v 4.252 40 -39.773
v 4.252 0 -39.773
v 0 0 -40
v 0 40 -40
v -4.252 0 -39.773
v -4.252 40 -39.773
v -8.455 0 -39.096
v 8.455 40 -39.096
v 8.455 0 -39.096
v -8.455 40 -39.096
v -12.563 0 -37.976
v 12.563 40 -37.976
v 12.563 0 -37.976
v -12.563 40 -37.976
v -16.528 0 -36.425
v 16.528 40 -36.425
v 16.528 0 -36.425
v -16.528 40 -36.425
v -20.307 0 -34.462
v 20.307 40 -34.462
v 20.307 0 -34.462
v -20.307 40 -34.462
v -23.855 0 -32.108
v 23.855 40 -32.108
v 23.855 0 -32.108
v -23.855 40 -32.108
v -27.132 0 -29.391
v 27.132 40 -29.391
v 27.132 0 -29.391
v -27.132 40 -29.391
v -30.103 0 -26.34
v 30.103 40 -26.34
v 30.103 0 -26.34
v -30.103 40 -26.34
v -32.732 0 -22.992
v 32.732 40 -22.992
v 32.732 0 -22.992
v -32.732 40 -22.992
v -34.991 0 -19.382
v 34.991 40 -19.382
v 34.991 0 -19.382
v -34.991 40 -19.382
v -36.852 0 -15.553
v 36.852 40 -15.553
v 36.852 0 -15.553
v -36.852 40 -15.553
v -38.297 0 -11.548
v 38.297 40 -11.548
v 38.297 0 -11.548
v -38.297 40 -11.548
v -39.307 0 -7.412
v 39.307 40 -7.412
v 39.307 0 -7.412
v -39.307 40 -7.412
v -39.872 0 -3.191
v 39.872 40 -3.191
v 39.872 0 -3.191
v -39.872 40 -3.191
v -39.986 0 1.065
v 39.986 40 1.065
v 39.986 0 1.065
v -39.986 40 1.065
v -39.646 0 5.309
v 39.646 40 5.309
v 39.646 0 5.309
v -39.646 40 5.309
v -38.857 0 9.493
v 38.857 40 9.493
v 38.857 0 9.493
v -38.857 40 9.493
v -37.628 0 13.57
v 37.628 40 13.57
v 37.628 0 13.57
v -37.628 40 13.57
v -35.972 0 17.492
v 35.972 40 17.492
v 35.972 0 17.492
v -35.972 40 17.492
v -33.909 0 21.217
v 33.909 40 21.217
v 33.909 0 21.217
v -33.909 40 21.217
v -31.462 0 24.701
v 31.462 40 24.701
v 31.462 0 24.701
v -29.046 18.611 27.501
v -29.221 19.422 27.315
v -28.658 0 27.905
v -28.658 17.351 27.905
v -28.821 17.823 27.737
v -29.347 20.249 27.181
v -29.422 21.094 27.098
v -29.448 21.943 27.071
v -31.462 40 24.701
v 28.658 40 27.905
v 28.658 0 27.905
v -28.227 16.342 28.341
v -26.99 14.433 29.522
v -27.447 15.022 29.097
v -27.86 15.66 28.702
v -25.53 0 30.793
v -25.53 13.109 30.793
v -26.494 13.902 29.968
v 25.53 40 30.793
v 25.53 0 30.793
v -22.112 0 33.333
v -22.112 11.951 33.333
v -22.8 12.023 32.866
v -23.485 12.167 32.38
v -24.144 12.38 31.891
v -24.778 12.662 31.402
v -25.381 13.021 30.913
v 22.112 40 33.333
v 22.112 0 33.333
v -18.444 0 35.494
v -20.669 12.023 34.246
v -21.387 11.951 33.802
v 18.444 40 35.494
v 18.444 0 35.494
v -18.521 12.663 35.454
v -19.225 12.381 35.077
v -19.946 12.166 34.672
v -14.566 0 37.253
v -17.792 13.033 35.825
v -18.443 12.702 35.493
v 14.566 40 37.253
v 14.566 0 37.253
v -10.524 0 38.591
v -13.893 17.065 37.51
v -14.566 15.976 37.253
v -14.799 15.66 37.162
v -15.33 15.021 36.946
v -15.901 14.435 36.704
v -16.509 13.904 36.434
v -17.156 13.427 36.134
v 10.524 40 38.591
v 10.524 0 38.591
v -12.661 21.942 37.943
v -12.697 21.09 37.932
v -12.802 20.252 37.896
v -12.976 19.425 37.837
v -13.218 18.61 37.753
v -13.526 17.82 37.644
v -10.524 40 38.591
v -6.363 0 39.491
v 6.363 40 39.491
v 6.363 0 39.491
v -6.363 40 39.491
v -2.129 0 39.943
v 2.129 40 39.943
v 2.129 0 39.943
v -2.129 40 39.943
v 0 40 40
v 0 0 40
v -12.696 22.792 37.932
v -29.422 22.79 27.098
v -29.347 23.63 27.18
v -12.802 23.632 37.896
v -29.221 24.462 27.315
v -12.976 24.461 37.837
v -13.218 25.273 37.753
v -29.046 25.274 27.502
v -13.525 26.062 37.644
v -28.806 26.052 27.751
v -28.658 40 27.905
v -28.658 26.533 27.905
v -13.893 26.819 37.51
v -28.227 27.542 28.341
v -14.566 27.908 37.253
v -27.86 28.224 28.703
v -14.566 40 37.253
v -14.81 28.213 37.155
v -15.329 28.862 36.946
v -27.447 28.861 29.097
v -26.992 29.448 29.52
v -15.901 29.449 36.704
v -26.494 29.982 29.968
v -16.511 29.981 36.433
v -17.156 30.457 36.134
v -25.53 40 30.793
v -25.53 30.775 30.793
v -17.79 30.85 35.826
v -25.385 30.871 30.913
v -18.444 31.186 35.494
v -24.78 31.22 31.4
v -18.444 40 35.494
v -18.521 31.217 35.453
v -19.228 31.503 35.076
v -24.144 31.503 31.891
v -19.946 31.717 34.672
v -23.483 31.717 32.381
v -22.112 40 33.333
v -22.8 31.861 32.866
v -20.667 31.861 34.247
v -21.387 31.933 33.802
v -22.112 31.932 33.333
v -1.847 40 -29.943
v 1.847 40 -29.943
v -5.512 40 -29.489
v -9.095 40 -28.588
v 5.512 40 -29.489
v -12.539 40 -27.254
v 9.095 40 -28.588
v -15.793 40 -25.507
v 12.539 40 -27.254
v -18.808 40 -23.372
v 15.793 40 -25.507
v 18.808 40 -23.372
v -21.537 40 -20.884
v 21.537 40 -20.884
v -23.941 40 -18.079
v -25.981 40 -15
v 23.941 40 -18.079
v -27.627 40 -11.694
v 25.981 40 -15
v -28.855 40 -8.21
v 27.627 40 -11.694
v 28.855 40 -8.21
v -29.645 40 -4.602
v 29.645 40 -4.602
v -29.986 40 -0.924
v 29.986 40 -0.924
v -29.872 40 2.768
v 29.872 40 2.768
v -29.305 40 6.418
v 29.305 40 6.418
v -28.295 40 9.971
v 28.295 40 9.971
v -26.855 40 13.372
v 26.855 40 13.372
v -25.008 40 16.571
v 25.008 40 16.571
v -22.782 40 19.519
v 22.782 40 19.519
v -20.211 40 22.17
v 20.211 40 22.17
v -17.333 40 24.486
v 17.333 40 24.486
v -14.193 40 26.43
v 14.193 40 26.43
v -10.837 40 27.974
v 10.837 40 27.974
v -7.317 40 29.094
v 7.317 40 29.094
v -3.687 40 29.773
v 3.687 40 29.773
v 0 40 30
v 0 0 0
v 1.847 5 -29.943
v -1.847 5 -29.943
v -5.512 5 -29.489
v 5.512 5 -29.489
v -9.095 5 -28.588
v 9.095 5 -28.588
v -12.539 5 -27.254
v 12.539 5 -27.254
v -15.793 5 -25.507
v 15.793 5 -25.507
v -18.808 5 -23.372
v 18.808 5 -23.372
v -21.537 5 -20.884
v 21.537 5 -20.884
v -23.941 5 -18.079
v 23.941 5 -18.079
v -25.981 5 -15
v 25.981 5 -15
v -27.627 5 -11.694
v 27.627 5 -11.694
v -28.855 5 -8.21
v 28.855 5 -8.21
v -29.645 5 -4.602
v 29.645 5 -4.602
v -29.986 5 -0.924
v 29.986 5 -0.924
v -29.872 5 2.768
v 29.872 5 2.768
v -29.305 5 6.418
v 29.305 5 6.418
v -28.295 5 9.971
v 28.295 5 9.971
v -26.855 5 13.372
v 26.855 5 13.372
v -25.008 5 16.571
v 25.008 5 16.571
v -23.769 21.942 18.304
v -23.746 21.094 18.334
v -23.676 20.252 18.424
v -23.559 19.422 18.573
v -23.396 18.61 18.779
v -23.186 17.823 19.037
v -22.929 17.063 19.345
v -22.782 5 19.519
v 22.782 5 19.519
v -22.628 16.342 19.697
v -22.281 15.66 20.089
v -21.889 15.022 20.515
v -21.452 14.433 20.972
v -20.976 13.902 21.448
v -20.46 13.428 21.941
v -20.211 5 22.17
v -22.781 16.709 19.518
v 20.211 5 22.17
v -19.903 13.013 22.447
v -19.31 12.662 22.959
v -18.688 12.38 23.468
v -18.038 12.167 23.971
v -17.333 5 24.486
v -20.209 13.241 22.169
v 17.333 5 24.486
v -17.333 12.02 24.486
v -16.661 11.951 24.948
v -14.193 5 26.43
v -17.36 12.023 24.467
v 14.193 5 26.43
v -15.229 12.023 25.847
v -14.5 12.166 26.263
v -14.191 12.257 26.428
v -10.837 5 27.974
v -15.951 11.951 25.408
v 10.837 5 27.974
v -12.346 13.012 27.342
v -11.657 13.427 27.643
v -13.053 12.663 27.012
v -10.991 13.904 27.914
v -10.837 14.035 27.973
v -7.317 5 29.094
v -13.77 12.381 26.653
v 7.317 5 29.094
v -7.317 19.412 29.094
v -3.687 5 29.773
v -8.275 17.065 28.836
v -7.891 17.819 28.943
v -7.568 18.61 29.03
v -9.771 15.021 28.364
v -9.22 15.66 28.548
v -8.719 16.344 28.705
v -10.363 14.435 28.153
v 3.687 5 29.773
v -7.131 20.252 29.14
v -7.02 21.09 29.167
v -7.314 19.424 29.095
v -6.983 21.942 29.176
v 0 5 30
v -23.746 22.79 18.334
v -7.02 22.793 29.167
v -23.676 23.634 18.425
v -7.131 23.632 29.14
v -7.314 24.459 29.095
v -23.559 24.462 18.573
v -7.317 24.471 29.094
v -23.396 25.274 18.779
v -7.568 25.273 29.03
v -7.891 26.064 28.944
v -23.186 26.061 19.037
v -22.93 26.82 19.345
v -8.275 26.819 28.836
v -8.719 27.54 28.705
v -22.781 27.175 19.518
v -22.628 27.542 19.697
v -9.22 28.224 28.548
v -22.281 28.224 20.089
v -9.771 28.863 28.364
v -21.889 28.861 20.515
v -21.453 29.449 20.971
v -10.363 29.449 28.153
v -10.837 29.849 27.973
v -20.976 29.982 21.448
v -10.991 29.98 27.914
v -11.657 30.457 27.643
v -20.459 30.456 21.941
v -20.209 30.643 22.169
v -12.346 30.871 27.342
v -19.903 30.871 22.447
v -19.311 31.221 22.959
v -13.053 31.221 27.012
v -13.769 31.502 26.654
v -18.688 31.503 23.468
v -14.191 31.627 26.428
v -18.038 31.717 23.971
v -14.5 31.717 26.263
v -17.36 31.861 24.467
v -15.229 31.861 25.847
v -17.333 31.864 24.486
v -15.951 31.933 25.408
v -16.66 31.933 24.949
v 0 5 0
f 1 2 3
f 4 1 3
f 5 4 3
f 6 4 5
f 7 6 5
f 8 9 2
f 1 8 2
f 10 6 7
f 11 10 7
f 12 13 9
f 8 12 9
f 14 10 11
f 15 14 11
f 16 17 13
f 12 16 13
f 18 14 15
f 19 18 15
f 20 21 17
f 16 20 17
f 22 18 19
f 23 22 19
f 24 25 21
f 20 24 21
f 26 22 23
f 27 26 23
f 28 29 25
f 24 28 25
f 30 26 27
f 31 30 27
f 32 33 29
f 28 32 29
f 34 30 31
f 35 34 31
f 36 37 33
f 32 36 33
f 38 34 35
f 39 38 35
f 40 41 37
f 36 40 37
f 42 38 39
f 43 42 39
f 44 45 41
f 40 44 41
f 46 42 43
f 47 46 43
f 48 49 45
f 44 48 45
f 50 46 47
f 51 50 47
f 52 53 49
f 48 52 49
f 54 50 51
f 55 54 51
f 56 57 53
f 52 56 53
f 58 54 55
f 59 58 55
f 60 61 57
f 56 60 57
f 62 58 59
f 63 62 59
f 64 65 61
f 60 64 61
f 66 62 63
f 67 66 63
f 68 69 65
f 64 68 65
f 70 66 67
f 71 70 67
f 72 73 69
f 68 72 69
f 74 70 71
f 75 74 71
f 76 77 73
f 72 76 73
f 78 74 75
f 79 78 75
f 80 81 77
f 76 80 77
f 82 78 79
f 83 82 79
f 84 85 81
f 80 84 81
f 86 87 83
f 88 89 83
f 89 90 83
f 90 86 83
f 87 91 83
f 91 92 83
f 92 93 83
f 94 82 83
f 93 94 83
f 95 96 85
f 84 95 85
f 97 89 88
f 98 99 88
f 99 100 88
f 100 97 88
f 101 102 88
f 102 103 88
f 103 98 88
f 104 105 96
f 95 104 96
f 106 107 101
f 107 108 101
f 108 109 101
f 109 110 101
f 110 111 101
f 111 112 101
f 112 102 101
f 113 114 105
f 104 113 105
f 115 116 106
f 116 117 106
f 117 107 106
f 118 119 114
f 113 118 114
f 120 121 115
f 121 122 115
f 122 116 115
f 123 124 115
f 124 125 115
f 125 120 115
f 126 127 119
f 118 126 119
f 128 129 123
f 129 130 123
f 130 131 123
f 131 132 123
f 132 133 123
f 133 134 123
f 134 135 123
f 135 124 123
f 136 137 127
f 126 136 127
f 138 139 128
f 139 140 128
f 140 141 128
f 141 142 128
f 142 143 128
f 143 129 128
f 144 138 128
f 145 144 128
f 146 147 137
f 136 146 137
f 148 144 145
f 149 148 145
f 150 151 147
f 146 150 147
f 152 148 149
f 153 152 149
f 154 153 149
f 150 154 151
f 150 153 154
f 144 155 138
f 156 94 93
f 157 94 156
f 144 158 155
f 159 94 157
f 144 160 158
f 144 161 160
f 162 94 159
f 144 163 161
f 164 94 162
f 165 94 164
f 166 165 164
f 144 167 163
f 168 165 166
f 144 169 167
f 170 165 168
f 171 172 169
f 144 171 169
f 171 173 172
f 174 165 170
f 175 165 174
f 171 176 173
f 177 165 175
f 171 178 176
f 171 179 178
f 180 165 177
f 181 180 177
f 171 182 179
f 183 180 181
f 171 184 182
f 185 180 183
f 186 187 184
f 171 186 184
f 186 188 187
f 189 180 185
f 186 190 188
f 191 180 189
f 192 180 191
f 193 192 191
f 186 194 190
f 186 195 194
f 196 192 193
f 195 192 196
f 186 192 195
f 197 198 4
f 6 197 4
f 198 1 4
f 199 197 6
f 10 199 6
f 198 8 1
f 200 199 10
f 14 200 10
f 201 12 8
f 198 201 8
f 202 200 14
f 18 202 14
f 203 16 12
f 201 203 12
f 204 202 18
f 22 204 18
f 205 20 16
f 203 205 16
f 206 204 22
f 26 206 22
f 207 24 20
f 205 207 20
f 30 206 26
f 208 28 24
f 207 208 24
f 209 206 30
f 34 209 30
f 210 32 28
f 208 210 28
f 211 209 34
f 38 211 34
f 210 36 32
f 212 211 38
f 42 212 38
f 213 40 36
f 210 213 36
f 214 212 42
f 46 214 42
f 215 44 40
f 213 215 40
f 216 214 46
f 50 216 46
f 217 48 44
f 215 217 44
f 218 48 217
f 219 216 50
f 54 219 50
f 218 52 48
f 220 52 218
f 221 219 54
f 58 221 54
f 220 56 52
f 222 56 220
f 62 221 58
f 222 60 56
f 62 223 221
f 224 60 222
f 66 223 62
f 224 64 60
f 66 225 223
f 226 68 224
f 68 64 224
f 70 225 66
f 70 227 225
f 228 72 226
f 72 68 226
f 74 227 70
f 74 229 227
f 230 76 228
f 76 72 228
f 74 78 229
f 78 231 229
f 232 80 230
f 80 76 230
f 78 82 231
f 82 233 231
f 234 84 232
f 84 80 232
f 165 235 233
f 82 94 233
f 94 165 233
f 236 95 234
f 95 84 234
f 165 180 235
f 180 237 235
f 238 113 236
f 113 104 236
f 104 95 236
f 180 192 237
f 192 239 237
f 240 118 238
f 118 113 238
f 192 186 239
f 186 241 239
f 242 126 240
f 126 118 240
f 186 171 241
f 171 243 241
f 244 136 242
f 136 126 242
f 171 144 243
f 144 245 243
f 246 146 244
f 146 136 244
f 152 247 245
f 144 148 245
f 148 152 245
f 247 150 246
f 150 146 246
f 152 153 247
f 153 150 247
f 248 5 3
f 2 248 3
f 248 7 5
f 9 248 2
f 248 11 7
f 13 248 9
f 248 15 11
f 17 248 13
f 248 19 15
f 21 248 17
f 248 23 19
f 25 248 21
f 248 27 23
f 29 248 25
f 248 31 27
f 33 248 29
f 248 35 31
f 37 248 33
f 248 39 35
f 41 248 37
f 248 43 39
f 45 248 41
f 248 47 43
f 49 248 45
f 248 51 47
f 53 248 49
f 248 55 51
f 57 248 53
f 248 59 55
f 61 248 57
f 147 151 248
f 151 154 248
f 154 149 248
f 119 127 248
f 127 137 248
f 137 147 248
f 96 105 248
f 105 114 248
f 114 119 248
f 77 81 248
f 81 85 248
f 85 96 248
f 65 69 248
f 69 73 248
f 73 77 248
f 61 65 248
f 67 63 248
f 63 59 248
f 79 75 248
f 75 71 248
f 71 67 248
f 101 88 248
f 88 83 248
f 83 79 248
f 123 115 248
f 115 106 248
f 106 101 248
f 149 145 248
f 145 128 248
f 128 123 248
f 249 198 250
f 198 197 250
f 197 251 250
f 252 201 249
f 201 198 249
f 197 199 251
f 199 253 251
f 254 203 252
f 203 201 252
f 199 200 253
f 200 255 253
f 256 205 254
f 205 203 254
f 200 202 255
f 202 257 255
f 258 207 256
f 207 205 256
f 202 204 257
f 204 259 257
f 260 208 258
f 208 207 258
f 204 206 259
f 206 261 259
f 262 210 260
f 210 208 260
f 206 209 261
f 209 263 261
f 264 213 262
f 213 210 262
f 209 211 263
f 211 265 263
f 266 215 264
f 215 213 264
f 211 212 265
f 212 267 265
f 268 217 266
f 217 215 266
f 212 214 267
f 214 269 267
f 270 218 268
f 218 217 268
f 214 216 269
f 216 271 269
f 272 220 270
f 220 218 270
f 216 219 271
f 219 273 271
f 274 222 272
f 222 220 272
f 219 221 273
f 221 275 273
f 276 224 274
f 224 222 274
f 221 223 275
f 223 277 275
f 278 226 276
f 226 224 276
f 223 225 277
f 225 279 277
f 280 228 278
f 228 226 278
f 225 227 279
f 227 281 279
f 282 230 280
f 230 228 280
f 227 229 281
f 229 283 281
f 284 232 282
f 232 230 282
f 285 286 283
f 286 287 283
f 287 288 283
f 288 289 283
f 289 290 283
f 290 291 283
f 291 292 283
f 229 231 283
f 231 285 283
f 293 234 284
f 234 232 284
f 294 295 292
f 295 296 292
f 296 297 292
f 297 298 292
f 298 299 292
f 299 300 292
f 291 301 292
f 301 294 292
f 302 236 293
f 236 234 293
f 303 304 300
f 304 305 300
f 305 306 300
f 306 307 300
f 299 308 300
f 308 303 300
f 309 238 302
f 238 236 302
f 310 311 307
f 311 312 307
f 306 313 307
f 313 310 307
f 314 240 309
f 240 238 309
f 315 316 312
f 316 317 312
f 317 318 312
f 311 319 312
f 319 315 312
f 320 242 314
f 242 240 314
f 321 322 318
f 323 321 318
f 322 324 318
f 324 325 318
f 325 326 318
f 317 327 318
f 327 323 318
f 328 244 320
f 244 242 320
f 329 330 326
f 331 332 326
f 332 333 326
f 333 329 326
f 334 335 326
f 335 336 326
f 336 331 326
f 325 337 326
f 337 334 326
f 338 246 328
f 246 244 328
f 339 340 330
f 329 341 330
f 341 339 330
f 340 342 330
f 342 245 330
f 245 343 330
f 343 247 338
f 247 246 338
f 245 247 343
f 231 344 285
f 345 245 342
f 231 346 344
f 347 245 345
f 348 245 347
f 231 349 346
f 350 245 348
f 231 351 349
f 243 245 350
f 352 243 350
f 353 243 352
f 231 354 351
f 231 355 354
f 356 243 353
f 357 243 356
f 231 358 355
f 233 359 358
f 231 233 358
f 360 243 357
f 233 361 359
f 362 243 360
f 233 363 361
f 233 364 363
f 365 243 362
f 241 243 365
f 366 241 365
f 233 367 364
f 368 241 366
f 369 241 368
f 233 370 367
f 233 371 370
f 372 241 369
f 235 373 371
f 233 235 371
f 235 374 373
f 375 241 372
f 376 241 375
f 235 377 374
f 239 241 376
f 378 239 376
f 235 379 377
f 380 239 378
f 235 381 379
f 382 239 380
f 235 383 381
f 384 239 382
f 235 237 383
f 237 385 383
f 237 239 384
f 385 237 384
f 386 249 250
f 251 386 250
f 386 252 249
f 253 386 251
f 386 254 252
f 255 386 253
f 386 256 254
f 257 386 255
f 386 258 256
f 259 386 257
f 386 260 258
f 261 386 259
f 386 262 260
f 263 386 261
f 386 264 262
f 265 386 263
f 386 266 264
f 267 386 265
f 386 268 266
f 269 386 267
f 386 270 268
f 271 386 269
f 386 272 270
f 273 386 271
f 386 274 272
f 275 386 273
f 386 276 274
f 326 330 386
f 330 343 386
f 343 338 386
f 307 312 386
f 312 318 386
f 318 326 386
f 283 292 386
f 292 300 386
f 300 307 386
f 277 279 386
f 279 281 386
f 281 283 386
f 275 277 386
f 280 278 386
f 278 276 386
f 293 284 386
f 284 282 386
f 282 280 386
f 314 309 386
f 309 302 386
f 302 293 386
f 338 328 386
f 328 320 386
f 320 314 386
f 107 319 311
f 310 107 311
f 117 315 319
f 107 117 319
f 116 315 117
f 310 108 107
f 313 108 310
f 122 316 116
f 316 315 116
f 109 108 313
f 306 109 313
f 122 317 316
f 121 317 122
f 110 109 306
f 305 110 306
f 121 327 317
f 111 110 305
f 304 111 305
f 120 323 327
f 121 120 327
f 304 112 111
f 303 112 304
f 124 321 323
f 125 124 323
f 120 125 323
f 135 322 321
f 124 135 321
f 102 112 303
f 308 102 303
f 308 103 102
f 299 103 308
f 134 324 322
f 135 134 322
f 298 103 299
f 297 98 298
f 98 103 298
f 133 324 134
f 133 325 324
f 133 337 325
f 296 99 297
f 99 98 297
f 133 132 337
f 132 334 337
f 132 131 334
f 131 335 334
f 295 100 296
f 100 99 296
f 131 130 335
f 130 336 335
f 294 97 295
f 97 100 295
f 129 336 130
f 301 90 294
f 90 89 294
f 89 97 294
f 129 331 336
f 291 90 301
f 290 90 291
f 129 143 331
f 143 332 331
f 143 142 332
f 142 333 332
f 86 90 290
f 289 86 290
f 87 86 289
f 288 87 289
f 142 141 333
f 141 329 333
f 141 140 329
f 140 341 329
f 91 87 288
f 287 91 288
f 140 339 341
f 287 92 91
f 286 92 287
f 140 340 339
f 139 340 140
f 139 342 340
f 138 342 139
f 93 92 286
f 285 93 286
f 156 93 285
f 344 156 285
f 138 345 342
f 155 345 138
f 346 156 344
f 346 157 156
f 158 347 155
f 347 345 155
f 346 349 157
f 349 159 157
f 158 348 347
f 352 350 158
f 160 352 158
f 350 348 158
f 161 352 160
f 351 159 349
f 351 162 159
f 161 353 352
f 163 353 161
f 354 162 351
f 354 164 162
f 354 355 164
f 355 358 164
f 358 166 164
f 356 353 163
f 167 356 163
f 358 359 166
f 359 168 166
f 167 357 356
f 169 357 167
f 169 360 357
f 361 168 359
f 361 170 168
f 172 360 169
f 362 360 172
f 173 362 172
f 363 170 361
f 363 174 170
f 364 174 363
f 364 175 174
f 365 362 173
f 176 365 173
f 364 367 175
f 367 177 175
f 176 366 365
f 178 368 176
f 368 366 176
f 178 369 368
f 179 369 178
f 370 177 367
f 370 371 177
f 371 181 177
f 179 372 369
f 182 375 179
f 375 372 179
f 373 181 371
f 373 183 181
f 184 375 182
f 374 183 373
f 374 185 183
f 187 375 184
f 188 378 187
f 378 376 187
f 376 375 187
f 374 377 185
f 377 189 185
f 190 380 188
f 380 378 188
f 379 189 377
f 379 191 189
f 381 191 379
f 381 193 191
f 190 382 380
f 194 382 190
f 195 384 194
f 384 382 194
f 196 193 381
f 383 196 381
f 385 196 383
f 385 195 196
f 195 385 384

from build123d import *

# Parameters (mm, degrees)
SKETCH_1_R          = 40
EXTRUDE_1_DEPTH     = 40
SKETCH_3_R          = 30
CUT_EXTRUDE_2_DEPTH = 35
F_20_0MM_1_REACH    = 100.524
F_20_0MM_1_BORE_R   = 10


with BuildPart() as part:
    # 草圖1 → 填料-伸長1 (new body)
    with BuildSketch(Plane(origin=(0, 0, 0), x_dir=(1, 0, 0), z_dir=(0, 1, 0))):
        with Locations(Location((0, 0, 0), (0, 0, 270))):
            Circle(SKETCH_1_R)
    extrude(amount=EXTRUDE_1_DEPTH)

    # 草圖3 → 除料-伸長2 (cut)
    with BuildSketch(Plane(origin=(0, 40, 0), x_dir=(1, 0, 0), z_dir=(0, 1, 0))):
        with Locations(Location((0, 0, 0), (0, 0, 270))):
            Circle(SKETCH_3_R)
    extrude(amount=-CUT_EXTRUDE_2_DEPTH, mode=Mode.SUBTRACT)

    # Ø20.0mm 定位孔1 bore (on position points) → Ø20.0mm 定位孔1 (cut, up to next)
    with BuildSketch(Plane(origin=(-21.744758151, 21.94181737, 33.573285406), x_dir=(0.839332135156, 0, 0.543618953768), z_dir=(-0.543618953768, 0, 0.839332135156)), mode=Mode.PRIVATE) as f_20_0mm_1_sk1:
        Circle(F_20_0MM_1_BORE_R)
    f_20_0mm_1_tool1 = extrude(f_20_0mm_1_sk1.sketch, amount=-F_20_0MM_1_REACH, mode=Mode.PRIVATE) & part.part
    add(f_20_0mm_1_tool1.solids().sort_by_distance((-21.744758, 21.941817, 33.573285))[0], mode=Mode.SUBTRACT)


solid = part.part
